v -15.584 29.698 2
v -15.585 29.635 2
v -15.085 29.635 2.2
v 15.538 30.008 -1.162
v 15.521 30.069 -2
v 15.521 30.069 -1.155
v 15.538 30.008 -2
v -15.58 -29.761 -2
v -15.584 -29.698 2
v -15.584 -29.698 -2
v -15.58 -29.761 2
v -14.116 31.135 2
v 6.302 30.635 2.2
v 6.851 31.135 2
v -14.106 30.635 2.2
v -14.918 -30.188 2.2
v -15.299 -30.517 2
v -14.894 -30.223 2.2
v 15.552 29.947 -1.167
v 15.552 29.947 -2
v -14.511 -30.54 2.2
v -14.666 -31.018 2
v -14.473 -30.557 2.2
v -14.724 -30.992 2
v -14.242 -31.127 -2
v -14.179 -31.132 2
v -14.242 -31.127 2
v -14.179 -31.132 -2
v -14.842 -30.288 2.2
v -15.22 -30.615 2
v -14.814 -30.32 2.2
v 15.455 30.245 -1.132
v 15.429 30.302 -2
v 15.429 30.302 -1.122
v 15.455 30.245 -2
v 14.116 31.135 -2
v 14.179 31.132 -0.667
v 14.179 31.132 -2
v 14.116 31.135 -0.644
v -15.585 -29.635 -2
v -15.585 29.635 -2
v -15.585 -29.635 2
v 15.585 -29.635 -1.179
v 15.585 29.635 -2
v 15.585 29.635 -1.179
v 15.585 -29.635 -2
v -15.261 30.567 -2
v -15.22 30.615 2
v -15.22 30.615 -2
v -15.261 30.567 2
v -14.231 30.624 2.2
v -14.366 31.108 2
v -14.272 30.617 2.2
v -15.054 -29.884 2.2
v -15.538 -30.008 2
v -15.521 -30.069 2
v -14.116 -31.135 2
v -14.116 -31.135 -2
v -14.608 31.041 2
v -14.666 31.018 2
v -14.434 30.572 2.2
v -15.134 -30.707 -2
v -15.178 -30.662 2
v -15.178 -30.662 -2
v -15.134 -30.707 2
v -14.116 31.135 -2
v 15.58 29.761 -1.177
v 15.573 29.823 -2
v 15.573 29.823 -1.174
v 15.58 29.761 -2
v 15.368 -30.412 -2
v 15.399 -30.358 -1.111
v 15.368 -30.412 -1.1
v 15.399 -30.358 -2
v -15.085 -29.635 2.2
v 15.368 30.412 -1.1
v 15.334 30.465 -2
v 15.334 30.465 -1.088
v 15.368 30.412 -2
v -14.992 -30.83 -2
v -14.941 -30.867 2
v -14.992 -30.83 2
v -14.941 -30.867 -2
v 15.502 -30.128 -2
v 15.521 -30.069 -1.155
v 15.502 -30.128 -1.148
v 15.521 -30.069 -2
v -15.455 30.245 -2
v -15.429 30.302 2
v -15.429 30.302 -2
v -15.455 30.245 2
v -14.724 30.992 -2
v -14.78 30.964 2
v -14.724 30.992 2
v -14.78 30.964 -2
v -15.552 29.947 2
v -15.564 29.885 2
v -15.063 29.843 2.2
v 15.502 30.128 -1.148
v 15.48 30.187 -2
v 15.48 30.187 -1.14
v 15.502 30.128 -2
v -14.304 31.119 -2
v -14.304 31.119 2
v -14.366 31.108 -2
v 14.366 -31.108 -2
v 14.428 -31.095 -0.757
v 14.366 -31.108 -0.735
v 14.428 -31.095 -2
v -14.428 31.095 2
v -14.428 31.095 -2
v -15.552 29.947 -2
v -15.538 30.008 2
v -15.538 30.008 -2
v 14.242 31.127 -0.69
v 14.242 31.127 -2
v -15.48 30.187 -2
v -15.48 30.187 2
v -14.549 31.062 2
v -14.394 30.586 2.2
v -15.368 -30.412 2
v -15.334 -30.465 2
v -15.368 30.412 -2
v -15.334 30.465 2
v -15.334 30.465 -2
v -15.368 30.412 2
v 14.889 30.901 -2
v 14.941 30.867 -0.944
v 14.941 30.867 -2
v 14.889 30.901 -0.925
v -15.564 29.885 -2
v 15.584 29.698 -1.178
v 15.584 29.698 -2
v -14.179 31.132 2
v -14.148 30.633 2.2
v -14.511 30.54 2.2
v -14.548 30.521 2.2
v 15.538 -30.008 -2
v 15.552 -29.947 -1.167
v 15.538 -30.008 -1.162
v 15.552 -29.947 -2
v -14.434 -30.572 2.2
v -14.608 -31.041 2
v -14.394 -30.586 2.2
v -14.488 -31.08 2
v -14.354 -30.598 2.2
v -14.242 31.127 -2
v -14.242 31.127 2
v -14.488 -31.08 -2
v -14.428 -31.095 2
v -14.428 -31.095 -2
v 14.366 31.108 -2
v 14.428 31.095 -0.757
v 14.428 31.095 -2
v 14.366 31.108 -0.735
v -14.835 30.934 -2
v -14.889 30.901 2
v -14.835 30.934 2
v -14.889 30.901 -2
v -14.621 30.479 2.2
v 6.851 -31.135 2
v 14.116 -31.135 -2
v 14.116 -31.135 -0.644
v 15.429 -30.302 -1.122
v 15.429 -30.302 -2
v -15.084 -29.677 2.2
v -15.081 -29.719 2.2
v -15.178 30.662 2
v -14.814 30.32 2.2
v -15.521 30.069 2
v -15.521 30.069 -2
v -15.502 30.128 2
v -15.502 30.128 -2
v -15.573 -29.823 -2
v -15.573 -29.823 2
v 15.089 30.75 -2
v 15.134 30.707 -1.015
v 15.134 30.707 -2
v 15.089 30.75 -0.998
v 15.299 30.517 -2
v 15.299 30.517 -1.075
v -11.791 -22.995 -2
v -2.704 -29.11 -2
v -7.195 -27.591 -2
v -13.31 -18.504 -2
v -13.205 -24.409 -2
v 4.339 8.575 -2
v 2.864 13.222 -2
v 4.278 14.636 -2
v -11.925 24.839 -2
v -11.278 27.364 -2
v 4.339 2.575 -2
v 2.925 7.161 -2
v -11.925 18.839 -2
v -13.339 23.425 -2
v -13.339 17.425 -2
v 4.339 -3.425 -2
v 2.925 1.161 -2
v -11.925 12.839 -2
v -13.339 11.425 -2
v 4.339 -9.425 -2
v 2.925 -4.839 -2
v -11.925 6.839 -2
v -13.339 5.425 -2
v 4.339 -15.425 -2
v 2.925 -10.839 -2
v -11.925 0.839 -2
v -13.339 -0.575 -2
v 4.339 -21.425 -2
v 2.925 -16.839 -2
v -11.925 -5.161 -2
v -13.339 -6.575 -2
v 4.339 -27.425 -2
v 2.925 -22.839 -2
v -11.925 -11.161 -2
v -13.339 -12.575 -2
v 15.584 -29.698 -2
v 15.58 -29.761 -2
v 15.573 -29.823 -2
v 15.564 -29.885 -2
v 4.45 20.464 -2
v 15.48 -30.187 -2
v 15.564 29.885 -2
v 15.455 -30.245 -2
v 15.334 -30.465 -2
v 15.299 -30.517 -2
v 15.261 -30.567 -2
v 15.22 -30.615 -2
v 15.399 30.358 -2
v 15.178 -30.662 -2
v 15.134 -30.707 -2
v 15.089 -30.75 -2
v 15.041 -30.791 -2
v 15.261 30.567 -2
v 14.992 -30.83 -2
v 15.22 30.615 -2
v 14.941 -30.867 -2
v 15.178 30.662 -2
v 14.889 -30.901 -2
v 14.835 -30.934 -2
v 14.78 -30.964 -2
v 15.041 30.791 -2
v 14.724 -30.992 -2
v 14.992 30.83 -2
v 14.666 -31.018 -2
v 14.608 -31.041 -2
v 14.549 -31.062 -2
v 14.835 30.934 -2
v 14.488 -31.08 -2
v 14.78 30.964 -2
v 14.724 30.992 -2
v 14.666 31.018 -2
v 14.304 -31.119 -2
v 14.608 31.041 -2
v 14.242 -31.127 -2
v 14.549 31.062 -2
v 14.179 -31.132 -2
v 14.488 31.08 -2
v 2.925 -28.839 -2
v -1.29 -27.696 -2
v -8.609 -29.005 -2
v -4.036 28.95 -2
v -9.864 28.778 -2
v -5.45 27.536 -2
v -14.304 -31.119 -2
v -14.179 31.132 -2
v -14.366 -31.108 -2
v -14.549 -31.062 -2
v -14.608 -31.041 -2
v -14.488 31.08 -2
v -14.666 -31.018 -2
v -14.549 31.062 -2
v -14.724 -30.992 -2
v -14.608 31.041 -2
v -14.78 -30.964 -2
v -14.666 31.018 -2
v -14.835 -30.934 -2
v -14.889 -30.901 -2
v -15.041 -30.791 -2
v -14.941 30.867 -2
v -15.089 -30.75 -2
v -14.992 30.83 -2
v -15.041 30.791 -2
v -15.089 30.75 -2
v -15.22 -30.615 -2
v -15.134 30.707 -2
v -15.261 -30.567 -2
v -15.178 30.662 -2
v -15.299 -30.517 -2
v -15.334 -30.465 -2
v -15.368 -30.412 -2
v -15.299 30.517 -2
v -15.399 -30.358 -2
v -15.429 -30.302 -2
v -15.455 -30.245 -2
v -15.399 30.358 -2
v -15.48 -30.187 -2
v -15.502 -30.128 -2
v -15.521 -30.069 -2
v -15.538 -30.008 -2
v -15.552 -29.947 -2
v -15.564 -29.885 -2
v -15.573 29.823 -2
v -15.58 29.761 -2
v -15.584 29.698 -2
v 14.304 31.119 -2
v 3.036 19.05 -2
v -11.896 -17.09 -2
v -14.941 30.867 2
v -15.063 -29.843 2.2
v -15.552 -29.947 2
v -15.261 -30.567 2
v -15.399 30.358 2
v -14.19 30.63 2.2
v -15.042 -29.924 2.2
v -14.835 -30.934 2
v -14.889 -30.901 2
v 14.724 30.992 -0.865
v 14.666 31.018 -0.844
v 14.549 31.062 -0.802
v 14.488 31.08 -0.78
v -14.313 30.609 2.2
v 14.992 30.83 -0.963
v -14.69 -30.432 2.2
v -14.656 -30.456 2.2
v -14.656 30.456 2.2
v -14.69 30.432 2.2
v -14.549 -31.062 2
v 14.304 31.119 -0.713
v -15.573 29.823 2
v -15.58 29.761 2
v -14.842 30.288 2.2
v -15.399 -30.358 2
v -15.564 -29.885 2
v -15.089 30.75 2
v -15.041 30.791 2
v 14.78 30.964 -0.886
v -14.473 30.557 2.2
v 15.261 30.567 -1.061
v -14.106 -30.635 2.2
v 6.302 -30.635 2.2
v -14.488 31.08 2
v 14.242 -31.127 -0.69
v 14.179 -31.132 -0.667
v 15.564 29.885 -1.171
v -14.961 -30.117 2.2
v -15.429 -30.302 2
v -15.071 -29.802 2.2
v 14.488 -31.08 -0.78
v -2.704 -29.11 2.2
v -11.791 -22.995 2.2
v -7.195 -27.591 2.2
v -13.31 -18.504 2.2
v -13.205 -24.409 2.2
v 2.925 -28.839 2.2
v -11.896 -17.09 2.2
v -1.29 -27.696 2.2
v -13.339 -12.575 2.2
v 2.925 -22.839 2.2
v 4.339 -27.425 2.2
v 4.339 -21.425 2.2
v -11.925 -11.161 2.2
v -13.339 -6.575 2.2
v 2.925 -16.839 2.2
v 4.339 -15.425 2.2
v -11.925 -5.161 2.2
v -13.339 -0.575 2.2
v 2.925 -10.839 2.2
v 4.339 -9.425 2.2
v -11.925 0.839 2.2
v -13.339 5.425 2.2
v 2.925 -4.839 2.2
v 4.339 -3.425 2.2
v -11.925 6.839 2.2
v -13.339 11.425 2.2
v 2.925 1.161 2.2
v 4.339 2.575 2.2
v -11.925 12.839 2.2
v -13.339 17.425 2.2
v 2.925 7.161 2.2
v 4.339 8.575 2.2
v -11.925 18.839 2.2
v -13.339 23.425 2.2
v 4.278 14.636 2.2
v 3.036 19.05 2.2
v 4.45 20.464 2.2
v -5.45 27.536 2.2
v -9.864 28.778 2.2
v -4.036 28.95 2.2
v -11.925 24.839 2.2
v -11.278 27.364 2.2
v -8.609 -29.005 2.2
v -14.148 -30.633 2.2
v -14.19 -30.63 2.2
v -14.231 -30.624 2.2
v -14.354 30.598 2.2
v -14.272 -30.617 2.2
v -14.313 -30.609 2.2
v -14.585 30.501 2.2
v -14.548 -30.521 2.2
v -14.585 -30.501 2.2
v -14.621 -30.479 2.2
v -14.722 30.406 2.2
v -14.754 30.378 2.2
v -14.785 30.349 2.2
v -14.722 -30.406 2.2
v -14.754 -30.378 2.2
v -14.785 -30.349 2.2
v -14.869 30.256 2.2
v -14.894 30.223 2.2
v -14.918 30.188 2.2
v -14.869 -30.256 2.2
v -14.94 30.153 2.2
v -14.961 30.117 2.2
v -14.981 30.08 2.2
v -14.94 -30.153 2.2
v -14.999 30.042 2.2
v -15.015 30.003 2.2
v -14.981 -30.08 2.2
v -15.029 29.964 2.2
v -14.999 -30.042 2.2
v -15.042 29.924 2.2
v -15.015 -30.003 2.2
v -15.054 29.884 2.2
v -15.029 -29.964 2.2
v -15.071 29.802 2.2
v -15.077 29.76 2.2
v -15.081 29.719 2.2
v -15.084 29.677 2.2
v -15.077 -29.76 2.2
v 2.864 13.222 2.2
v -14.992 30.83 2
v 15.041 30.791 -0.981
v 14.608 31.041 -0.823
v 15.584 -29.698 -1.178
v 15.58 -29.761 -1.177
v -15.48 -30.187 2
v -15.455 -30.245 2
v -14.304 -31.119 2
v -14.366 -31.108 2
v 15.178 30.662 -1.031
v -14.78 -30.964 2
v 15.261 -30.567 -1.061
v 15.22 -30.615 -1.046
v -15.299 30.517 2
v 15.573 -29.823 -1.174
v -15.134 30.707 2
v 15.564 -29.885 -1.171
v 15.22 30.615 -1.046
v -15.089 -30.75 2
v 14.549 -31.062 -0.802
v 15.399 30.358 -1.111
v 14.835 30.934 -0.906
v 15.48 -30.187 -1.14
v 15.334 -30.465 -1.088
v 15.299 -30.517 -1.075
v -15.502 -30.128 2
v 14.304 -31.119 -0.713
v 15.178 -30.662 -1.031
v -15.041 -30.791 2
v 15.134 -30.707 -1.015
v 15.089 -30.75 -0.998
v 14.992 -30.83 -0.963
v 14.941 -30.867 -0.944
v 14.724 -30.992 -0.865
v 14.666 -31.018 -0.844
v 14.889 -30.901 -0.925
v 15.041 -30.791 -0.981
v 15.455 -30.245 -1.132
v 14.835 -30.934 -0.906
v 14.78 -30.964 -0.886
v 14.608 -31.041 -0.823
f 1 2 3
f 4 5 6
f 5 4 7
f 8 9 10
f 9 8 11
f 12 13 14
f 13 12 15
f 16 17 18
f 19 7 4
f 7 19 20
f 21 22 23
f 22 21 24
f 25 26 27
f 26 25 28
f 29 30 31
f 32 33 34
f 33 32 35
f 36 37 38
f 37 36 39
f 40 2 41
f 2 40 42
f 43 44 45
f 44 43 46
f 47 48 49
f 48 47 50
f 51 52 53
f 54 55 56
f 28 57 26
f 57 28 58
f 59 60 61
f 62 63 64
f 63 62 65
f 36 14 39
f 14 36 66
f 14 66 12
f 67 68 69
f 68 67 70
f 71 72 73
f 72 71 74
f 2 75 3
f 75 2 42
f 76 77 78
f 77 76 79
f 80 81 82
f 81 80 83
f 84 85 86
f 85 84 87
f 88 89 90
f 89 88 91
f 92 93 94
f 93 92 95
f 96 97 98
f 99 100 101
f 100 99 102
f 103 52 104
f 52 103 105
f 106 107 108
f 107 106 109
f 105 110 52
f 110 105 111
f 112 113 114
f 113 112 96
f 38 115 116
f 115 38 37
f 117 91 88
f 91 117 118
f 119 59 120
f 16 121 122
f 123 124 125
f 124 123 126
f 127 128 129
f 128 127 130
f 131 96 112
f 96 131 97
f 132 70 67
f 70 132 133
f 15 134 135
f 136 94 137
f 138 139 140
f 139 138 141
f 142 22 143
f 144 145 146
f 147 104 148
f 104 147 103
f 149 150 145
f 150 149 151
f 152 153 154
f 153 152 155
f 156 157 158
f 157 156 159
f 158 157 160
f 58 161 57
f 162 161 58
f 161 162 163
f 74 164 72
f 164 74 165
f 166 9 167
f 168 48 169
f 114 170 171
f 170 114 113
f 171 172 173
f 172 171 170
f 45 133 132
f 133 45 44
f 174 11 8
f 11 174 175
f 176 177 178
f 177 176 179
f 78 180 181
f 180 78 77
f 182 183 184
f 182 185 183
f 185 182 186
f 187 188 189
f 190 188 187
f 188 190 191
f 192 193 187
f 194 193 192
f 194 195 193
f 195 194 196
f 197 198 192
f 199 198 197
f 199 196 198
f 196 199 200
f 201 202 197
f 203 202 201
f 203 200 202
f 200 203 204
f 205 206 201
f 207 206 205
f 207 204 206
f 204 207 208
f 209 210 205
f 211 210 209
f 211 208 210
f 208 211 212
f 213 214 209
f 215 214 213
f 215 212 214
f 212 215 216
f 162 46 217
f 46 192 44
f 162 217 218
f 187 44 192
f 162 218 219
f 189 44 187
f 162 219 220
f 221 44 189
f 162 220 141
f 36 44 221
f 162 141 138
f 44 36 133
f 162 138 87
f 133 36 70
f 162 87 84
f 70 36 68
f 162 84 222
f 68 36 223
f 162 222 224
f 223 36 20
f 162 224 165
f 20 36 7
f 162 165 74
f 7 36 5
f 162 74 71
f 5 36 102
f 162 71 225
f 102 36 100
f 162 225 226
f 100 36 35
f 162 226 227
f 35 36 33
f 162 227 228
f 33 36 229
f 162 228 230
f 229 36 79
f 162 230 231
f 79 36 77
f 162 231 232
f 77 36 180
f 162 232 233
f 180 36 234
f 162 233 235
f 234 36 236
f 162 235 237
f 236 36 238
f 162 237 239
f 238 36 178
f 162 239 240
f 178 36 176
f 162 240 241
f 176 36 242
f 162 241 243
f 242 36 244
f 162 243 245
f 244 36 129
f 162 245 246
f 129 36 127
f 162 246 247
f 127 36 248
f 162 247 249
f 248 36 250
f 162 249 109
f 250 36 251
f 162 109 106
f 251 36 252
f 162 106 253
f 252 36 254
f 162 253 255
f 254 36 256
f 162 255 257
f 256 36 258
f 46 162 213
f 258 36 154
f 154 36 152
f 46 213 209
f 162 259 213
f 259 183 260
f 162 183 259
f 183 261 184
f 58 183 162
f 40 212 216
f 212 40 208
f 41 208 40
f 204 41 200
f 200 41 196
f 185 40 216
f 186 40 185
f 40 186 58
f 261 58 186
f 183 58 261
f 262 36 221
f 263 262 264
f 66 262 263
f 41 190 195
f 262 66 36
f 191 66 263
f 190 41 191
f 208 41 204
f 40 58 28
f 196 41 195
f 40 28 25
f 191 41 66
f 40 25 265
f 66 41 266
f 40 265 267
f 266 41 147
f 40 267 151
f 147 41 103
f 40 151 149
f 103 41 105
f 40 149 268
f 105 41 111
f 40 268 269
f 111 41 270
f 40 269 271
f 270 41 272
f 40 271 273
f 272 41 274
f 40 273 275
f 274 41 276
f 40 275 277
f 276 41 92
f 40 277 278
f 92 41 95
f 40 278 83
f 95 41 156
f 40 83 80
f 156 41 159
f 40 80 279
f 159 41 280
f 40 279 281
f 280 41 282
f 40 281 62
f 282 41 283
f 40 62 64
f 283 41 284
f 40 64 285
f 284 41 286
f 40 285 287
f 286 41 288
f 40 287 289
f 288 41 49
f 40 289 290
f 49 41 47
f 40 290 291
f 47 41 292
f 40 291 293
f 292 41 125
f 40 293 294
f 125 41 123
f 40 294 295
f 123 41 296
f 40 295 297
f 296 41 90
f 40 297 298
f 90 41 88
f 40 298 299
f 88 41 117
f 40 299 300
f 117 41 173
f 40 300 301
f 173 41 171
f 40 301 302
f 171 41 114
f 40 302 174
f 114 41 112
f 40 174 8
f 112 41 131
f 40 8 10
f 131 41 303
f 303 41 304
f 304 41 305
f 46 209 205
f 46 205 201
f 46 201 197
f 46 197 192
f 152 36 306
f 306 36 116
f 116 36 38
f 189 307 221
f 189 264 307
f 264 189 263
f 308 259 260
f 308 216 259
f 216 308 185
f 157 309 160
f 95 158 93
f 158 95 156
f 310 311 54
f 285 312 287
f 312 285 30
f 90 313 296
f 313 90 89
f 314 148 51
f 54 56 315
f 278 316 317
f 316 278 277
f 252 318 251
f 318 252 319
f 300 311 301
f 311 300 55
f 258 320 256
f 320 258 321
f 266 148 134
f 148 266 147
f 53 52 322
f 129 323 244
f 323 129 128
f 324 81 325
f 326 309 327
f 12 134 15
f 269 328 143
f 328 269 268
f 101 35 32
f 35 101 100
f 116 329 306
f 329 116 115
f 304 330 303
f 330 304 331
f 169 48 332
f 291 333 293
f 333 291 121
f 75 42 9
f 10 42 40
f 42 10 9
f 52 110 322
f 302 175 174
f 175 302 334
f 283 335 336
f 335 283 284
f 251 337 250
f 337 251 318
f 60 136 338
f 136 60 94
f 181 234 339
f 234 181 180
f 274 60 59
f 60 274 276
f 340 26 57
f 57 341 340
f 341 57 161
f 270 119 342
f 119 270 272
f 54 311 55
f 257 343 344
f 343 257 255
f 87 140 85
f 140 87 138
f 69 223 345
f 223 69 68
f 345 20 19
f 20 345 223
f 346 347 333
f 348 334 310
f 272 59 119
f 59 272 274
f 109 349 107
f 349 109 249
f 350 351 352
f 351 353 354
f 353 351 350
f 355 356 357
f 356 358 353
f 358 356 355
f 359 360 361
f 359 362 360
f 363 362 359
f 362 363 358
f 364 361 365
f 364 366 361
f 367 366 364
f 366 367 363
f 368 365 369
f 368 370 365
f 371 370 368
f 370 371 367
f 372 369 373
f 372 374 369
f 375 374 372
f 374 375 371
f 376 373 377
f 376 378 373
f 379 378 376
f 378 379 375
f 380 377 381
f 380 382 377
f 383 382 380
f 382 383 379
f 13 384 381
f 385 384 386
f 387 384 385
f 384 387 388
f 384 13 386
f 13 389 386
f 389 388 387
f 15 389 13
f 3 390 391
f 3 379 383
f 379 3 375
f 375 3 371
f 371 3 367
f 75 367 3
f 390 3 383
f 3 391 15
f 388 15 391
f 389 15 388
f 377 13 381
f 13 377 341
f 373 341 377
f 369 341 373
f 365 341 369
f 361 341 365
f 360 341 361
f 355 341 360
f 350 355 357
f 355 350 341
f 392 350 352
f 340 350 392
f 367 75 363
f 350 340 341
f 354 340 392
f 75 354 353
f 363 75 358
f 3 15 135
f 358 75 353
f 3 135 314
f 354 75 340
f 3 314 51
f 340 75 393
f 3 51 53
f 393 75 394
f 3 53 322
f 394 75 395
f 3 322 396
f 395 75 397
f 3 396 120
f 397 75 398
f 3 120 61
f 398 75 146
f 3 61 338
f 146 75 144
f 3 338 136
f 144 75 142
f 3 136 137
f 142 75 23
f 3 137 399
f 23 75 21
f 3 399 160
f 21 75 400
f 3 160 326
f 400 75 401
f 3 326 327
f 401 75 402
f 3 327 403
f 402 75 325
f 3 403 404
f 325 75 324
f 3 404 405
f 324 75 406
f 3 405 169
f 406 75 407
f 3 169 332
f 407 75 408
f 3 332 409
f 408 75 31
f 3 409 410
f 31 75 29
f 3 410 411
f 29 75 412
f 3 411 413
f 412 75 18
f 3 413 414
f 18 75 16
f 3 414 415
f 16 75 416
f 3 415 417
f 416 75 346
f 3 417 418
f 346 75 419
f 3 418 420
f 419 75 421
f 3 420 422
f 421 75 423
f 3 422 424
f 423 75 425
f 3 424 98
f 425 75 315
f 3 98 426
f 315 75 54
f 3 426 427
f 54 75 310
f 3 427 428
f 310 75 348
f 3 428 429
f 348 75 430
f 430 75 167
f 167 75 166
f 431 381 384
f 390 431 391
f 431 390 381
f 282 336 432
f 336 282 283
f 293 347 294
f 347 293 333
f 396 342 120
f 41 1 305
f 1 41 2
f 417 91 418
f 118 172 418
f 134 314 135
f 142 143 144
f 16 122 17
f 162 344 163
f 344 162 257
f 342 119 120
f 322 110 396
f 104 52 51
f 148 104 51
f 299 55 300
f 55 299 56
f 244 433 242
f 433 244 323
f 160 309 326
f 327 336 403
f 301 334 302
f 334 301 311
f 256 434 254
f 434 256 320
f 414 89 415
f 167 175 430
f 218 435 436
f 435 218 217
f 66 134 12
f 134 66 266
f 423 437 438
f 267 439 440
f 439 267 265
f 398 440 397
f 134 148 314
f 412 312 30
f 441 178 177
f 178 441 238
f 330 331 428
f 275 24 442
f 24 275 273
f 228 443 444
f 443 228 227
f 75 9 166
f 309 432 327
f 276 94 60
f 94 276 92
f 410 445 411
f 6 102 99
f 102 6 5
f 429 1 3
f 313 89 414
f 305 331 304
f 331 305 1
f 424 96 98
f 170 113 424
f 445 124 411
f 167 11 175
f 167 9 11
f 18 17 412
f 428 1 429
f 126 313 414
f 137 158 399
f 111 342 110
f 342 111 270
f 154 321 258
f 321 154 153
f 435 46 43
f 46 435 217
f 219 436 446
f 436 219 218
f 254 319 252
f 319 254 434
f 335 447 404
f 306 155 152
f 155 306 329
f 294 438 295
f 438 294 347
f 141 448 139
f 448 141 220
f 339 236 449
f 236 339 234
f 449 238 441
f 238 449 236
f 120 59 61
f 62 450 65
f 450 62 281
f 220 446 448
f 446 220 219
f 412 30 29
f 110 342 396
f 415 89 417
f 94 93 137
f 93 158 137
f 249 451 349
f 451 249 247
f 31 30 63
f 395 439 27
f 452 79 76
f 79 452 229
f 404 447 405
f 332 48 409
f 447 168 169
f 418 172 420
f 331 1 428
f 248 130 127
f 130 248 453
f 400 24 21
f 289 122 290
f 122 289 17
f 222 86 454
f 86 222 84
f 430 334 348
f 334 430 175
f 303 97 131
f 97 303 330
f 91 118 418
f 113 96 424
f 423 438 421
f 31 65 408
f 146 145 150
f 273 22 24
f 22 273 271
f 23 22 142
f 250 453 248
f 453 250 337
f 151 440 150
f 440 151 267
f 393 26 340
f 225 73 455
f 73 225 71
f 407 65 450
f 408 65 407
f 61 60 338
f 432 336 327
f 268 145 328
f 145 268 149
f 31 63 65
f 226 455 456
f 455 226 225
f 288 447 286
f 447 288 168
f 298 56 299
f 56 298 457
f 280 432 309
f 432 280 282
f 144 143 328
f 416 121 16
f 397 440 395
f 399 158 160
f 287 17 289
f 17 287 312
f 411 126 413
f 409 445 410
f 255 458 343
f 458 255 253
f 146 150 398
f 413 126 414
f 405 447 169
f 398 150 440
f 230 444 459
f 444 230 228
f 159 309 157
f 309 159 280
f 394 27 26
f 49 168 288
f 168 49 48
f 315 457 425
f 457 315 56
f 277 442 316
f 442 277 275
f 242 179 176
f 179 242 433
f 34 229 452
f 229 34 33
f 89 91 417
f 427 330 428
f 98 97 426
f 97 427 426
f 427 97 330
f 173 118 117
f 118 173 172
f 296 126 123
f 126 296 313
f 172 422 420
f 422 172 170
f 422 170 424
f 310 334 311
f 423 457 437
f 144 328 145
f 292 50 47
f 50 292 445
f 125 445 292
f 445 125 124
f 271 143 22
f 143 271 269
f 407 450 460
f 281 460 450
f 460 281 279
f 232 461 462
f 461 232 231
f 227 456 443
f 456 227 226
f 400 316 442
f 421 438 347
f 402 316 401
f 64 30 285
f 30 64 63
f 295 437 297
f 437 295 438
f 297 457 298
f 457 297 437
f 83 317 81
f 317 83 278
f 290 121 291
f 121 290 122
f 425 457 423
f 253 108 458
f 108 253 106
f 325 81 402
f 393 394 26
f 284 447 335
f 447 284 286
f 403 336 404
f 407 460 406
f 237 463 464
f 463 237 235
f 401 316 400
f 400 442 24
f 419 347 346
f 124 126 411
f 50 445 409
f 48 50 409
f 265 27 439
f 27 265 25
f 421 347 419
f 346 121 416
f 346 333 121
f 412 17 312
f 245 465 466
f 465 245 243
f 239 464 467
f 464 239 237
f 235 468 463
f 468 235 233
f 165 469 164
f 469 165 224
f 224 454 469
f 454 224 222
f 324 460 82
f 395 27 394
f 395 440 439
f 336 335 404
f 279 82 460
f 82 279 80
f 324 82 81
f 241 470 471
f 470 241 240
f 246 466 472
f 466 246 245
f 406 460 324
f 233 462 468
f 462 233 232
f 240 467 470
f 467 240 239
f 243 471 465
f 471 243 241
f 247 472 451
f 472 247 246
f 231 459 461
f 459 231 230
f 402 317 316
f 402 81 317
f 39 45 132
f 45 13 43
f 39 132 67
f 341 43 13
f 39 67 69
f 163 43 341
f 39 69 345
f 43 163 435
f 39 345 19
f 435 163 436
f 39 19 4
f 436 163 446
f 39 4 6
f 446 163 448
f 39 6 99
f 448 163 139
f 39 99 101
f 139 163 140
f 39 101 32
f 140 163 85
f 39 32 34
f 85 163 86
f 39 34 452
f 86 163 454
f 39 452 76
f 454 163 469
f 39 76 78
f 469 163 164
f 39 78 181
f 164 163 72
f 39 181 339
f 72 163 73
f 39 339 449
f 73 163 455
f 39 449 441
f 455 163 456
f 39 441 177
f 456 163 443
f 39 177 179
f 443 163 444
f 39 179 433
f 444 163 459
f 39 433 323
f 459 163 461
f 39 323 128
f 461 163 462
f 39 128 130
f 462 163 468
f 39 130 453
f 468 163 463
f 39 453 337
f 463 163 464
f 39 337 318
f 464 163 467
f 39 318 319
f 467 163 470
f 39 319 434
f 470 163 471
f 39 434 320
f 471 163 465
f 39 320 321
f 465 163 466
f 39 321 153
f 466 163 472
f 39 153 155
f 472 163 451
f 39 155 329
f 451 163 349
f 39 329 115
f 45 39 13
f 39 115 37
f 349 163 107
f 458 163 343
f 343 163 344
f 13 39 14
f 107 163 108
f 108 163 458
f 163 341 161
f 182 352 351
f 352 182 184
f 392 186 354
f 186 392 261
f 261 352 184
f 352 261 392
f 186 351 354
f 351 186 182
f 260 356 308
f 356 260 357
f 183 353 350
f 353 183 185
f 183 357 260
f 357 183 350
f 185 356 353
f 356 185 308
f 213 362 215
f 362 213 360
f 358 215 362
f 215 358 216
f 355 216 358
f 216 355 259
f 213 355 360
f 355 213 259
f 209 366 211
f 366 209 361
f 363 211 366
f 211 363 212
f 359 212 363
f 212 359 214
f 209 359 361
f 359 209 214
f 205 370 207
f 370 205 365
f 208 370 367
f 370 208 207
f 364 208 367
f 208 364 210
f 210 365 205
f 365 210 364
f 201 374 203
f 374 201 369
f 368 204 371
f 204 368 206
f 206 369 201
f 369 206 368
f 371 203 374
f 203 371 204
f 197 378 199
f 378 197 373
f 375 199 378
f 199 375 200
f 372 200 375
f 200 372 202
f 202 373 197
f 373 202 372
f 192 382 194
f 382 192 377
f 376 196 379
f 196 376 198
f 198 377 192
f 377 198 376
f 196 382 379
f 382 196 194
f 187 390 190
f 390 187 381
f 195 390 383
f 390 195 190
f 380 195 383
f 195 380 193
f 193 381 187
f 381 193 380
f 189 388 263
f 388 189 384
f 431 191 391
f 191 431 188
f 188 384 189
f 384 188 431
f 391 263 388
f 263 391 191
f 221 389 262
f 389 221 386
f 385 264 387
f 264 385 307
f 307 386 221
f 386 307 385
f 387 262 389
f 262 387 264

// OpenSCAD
// A simple case for the MiSTeryNano Lite  (https://github.com/harbaum/MiSTeryNano)

// Original author: Oliver Jaksch
// CC BY-NC-SA 4.0 (https://creativecommons.org/licenses/by-nc-sa/4.0/)

// Top for the Top :)
difference() {
    $fn=150;
    minkowski() {
        cube([28.17, 59.27, 4], true);
        cylinder(0.2, 1.5);
    }

    // Plate
    translate ([11.6, 0, 2.4]) rotate([0, 20, 0]) cube([10, 62.5, 4], true);

    // Vents
    translate ([-10.2, -26.0, 0]) rotate([-45, 90, 0]) cube([5, 6.5, 2], true);
    translate ([-7.3, -23.1, 0]) rotate([-45, 90, 0]) cube([5, 15, 2], true);
    translate ([-4.5, -20, 0]) rotate([-45, 90, 0]) cube([5, 23, 2], true);
    translate ([-4.5, -14, 0]) rotate([-45, 90, 0]) cube([5, 23, 2], true);
    translate ([-4.5, -8, 0]) rotate([-45, 90, 0]) cube([5, 23, 2], true);
    translate ([-4.5, -2, 0]) rotate([-45, 90, 0]) cube([5, 23, 2], true);
    translate ([-4.5, 4, 0]) rotate([-45, 90, 0]) cube([5, 23, 2], true);
    translate ([-4.5, 10, 0]) rotate([-45, 90, 0]) cube([5, 23, 2], true);
    translate ([-4.5, 16, 0]) rotate([-45, 90, 0]) cube([5, 23, 2], true);
    translate ([-3.5, 21, 0]) rotate([-45, 90, 0]) cube([5, 20, 2], true);
    translate ([-0.5, 24, 0]) rotate([-45, 90, 0]) cube([5, 12, 2], true);
}
